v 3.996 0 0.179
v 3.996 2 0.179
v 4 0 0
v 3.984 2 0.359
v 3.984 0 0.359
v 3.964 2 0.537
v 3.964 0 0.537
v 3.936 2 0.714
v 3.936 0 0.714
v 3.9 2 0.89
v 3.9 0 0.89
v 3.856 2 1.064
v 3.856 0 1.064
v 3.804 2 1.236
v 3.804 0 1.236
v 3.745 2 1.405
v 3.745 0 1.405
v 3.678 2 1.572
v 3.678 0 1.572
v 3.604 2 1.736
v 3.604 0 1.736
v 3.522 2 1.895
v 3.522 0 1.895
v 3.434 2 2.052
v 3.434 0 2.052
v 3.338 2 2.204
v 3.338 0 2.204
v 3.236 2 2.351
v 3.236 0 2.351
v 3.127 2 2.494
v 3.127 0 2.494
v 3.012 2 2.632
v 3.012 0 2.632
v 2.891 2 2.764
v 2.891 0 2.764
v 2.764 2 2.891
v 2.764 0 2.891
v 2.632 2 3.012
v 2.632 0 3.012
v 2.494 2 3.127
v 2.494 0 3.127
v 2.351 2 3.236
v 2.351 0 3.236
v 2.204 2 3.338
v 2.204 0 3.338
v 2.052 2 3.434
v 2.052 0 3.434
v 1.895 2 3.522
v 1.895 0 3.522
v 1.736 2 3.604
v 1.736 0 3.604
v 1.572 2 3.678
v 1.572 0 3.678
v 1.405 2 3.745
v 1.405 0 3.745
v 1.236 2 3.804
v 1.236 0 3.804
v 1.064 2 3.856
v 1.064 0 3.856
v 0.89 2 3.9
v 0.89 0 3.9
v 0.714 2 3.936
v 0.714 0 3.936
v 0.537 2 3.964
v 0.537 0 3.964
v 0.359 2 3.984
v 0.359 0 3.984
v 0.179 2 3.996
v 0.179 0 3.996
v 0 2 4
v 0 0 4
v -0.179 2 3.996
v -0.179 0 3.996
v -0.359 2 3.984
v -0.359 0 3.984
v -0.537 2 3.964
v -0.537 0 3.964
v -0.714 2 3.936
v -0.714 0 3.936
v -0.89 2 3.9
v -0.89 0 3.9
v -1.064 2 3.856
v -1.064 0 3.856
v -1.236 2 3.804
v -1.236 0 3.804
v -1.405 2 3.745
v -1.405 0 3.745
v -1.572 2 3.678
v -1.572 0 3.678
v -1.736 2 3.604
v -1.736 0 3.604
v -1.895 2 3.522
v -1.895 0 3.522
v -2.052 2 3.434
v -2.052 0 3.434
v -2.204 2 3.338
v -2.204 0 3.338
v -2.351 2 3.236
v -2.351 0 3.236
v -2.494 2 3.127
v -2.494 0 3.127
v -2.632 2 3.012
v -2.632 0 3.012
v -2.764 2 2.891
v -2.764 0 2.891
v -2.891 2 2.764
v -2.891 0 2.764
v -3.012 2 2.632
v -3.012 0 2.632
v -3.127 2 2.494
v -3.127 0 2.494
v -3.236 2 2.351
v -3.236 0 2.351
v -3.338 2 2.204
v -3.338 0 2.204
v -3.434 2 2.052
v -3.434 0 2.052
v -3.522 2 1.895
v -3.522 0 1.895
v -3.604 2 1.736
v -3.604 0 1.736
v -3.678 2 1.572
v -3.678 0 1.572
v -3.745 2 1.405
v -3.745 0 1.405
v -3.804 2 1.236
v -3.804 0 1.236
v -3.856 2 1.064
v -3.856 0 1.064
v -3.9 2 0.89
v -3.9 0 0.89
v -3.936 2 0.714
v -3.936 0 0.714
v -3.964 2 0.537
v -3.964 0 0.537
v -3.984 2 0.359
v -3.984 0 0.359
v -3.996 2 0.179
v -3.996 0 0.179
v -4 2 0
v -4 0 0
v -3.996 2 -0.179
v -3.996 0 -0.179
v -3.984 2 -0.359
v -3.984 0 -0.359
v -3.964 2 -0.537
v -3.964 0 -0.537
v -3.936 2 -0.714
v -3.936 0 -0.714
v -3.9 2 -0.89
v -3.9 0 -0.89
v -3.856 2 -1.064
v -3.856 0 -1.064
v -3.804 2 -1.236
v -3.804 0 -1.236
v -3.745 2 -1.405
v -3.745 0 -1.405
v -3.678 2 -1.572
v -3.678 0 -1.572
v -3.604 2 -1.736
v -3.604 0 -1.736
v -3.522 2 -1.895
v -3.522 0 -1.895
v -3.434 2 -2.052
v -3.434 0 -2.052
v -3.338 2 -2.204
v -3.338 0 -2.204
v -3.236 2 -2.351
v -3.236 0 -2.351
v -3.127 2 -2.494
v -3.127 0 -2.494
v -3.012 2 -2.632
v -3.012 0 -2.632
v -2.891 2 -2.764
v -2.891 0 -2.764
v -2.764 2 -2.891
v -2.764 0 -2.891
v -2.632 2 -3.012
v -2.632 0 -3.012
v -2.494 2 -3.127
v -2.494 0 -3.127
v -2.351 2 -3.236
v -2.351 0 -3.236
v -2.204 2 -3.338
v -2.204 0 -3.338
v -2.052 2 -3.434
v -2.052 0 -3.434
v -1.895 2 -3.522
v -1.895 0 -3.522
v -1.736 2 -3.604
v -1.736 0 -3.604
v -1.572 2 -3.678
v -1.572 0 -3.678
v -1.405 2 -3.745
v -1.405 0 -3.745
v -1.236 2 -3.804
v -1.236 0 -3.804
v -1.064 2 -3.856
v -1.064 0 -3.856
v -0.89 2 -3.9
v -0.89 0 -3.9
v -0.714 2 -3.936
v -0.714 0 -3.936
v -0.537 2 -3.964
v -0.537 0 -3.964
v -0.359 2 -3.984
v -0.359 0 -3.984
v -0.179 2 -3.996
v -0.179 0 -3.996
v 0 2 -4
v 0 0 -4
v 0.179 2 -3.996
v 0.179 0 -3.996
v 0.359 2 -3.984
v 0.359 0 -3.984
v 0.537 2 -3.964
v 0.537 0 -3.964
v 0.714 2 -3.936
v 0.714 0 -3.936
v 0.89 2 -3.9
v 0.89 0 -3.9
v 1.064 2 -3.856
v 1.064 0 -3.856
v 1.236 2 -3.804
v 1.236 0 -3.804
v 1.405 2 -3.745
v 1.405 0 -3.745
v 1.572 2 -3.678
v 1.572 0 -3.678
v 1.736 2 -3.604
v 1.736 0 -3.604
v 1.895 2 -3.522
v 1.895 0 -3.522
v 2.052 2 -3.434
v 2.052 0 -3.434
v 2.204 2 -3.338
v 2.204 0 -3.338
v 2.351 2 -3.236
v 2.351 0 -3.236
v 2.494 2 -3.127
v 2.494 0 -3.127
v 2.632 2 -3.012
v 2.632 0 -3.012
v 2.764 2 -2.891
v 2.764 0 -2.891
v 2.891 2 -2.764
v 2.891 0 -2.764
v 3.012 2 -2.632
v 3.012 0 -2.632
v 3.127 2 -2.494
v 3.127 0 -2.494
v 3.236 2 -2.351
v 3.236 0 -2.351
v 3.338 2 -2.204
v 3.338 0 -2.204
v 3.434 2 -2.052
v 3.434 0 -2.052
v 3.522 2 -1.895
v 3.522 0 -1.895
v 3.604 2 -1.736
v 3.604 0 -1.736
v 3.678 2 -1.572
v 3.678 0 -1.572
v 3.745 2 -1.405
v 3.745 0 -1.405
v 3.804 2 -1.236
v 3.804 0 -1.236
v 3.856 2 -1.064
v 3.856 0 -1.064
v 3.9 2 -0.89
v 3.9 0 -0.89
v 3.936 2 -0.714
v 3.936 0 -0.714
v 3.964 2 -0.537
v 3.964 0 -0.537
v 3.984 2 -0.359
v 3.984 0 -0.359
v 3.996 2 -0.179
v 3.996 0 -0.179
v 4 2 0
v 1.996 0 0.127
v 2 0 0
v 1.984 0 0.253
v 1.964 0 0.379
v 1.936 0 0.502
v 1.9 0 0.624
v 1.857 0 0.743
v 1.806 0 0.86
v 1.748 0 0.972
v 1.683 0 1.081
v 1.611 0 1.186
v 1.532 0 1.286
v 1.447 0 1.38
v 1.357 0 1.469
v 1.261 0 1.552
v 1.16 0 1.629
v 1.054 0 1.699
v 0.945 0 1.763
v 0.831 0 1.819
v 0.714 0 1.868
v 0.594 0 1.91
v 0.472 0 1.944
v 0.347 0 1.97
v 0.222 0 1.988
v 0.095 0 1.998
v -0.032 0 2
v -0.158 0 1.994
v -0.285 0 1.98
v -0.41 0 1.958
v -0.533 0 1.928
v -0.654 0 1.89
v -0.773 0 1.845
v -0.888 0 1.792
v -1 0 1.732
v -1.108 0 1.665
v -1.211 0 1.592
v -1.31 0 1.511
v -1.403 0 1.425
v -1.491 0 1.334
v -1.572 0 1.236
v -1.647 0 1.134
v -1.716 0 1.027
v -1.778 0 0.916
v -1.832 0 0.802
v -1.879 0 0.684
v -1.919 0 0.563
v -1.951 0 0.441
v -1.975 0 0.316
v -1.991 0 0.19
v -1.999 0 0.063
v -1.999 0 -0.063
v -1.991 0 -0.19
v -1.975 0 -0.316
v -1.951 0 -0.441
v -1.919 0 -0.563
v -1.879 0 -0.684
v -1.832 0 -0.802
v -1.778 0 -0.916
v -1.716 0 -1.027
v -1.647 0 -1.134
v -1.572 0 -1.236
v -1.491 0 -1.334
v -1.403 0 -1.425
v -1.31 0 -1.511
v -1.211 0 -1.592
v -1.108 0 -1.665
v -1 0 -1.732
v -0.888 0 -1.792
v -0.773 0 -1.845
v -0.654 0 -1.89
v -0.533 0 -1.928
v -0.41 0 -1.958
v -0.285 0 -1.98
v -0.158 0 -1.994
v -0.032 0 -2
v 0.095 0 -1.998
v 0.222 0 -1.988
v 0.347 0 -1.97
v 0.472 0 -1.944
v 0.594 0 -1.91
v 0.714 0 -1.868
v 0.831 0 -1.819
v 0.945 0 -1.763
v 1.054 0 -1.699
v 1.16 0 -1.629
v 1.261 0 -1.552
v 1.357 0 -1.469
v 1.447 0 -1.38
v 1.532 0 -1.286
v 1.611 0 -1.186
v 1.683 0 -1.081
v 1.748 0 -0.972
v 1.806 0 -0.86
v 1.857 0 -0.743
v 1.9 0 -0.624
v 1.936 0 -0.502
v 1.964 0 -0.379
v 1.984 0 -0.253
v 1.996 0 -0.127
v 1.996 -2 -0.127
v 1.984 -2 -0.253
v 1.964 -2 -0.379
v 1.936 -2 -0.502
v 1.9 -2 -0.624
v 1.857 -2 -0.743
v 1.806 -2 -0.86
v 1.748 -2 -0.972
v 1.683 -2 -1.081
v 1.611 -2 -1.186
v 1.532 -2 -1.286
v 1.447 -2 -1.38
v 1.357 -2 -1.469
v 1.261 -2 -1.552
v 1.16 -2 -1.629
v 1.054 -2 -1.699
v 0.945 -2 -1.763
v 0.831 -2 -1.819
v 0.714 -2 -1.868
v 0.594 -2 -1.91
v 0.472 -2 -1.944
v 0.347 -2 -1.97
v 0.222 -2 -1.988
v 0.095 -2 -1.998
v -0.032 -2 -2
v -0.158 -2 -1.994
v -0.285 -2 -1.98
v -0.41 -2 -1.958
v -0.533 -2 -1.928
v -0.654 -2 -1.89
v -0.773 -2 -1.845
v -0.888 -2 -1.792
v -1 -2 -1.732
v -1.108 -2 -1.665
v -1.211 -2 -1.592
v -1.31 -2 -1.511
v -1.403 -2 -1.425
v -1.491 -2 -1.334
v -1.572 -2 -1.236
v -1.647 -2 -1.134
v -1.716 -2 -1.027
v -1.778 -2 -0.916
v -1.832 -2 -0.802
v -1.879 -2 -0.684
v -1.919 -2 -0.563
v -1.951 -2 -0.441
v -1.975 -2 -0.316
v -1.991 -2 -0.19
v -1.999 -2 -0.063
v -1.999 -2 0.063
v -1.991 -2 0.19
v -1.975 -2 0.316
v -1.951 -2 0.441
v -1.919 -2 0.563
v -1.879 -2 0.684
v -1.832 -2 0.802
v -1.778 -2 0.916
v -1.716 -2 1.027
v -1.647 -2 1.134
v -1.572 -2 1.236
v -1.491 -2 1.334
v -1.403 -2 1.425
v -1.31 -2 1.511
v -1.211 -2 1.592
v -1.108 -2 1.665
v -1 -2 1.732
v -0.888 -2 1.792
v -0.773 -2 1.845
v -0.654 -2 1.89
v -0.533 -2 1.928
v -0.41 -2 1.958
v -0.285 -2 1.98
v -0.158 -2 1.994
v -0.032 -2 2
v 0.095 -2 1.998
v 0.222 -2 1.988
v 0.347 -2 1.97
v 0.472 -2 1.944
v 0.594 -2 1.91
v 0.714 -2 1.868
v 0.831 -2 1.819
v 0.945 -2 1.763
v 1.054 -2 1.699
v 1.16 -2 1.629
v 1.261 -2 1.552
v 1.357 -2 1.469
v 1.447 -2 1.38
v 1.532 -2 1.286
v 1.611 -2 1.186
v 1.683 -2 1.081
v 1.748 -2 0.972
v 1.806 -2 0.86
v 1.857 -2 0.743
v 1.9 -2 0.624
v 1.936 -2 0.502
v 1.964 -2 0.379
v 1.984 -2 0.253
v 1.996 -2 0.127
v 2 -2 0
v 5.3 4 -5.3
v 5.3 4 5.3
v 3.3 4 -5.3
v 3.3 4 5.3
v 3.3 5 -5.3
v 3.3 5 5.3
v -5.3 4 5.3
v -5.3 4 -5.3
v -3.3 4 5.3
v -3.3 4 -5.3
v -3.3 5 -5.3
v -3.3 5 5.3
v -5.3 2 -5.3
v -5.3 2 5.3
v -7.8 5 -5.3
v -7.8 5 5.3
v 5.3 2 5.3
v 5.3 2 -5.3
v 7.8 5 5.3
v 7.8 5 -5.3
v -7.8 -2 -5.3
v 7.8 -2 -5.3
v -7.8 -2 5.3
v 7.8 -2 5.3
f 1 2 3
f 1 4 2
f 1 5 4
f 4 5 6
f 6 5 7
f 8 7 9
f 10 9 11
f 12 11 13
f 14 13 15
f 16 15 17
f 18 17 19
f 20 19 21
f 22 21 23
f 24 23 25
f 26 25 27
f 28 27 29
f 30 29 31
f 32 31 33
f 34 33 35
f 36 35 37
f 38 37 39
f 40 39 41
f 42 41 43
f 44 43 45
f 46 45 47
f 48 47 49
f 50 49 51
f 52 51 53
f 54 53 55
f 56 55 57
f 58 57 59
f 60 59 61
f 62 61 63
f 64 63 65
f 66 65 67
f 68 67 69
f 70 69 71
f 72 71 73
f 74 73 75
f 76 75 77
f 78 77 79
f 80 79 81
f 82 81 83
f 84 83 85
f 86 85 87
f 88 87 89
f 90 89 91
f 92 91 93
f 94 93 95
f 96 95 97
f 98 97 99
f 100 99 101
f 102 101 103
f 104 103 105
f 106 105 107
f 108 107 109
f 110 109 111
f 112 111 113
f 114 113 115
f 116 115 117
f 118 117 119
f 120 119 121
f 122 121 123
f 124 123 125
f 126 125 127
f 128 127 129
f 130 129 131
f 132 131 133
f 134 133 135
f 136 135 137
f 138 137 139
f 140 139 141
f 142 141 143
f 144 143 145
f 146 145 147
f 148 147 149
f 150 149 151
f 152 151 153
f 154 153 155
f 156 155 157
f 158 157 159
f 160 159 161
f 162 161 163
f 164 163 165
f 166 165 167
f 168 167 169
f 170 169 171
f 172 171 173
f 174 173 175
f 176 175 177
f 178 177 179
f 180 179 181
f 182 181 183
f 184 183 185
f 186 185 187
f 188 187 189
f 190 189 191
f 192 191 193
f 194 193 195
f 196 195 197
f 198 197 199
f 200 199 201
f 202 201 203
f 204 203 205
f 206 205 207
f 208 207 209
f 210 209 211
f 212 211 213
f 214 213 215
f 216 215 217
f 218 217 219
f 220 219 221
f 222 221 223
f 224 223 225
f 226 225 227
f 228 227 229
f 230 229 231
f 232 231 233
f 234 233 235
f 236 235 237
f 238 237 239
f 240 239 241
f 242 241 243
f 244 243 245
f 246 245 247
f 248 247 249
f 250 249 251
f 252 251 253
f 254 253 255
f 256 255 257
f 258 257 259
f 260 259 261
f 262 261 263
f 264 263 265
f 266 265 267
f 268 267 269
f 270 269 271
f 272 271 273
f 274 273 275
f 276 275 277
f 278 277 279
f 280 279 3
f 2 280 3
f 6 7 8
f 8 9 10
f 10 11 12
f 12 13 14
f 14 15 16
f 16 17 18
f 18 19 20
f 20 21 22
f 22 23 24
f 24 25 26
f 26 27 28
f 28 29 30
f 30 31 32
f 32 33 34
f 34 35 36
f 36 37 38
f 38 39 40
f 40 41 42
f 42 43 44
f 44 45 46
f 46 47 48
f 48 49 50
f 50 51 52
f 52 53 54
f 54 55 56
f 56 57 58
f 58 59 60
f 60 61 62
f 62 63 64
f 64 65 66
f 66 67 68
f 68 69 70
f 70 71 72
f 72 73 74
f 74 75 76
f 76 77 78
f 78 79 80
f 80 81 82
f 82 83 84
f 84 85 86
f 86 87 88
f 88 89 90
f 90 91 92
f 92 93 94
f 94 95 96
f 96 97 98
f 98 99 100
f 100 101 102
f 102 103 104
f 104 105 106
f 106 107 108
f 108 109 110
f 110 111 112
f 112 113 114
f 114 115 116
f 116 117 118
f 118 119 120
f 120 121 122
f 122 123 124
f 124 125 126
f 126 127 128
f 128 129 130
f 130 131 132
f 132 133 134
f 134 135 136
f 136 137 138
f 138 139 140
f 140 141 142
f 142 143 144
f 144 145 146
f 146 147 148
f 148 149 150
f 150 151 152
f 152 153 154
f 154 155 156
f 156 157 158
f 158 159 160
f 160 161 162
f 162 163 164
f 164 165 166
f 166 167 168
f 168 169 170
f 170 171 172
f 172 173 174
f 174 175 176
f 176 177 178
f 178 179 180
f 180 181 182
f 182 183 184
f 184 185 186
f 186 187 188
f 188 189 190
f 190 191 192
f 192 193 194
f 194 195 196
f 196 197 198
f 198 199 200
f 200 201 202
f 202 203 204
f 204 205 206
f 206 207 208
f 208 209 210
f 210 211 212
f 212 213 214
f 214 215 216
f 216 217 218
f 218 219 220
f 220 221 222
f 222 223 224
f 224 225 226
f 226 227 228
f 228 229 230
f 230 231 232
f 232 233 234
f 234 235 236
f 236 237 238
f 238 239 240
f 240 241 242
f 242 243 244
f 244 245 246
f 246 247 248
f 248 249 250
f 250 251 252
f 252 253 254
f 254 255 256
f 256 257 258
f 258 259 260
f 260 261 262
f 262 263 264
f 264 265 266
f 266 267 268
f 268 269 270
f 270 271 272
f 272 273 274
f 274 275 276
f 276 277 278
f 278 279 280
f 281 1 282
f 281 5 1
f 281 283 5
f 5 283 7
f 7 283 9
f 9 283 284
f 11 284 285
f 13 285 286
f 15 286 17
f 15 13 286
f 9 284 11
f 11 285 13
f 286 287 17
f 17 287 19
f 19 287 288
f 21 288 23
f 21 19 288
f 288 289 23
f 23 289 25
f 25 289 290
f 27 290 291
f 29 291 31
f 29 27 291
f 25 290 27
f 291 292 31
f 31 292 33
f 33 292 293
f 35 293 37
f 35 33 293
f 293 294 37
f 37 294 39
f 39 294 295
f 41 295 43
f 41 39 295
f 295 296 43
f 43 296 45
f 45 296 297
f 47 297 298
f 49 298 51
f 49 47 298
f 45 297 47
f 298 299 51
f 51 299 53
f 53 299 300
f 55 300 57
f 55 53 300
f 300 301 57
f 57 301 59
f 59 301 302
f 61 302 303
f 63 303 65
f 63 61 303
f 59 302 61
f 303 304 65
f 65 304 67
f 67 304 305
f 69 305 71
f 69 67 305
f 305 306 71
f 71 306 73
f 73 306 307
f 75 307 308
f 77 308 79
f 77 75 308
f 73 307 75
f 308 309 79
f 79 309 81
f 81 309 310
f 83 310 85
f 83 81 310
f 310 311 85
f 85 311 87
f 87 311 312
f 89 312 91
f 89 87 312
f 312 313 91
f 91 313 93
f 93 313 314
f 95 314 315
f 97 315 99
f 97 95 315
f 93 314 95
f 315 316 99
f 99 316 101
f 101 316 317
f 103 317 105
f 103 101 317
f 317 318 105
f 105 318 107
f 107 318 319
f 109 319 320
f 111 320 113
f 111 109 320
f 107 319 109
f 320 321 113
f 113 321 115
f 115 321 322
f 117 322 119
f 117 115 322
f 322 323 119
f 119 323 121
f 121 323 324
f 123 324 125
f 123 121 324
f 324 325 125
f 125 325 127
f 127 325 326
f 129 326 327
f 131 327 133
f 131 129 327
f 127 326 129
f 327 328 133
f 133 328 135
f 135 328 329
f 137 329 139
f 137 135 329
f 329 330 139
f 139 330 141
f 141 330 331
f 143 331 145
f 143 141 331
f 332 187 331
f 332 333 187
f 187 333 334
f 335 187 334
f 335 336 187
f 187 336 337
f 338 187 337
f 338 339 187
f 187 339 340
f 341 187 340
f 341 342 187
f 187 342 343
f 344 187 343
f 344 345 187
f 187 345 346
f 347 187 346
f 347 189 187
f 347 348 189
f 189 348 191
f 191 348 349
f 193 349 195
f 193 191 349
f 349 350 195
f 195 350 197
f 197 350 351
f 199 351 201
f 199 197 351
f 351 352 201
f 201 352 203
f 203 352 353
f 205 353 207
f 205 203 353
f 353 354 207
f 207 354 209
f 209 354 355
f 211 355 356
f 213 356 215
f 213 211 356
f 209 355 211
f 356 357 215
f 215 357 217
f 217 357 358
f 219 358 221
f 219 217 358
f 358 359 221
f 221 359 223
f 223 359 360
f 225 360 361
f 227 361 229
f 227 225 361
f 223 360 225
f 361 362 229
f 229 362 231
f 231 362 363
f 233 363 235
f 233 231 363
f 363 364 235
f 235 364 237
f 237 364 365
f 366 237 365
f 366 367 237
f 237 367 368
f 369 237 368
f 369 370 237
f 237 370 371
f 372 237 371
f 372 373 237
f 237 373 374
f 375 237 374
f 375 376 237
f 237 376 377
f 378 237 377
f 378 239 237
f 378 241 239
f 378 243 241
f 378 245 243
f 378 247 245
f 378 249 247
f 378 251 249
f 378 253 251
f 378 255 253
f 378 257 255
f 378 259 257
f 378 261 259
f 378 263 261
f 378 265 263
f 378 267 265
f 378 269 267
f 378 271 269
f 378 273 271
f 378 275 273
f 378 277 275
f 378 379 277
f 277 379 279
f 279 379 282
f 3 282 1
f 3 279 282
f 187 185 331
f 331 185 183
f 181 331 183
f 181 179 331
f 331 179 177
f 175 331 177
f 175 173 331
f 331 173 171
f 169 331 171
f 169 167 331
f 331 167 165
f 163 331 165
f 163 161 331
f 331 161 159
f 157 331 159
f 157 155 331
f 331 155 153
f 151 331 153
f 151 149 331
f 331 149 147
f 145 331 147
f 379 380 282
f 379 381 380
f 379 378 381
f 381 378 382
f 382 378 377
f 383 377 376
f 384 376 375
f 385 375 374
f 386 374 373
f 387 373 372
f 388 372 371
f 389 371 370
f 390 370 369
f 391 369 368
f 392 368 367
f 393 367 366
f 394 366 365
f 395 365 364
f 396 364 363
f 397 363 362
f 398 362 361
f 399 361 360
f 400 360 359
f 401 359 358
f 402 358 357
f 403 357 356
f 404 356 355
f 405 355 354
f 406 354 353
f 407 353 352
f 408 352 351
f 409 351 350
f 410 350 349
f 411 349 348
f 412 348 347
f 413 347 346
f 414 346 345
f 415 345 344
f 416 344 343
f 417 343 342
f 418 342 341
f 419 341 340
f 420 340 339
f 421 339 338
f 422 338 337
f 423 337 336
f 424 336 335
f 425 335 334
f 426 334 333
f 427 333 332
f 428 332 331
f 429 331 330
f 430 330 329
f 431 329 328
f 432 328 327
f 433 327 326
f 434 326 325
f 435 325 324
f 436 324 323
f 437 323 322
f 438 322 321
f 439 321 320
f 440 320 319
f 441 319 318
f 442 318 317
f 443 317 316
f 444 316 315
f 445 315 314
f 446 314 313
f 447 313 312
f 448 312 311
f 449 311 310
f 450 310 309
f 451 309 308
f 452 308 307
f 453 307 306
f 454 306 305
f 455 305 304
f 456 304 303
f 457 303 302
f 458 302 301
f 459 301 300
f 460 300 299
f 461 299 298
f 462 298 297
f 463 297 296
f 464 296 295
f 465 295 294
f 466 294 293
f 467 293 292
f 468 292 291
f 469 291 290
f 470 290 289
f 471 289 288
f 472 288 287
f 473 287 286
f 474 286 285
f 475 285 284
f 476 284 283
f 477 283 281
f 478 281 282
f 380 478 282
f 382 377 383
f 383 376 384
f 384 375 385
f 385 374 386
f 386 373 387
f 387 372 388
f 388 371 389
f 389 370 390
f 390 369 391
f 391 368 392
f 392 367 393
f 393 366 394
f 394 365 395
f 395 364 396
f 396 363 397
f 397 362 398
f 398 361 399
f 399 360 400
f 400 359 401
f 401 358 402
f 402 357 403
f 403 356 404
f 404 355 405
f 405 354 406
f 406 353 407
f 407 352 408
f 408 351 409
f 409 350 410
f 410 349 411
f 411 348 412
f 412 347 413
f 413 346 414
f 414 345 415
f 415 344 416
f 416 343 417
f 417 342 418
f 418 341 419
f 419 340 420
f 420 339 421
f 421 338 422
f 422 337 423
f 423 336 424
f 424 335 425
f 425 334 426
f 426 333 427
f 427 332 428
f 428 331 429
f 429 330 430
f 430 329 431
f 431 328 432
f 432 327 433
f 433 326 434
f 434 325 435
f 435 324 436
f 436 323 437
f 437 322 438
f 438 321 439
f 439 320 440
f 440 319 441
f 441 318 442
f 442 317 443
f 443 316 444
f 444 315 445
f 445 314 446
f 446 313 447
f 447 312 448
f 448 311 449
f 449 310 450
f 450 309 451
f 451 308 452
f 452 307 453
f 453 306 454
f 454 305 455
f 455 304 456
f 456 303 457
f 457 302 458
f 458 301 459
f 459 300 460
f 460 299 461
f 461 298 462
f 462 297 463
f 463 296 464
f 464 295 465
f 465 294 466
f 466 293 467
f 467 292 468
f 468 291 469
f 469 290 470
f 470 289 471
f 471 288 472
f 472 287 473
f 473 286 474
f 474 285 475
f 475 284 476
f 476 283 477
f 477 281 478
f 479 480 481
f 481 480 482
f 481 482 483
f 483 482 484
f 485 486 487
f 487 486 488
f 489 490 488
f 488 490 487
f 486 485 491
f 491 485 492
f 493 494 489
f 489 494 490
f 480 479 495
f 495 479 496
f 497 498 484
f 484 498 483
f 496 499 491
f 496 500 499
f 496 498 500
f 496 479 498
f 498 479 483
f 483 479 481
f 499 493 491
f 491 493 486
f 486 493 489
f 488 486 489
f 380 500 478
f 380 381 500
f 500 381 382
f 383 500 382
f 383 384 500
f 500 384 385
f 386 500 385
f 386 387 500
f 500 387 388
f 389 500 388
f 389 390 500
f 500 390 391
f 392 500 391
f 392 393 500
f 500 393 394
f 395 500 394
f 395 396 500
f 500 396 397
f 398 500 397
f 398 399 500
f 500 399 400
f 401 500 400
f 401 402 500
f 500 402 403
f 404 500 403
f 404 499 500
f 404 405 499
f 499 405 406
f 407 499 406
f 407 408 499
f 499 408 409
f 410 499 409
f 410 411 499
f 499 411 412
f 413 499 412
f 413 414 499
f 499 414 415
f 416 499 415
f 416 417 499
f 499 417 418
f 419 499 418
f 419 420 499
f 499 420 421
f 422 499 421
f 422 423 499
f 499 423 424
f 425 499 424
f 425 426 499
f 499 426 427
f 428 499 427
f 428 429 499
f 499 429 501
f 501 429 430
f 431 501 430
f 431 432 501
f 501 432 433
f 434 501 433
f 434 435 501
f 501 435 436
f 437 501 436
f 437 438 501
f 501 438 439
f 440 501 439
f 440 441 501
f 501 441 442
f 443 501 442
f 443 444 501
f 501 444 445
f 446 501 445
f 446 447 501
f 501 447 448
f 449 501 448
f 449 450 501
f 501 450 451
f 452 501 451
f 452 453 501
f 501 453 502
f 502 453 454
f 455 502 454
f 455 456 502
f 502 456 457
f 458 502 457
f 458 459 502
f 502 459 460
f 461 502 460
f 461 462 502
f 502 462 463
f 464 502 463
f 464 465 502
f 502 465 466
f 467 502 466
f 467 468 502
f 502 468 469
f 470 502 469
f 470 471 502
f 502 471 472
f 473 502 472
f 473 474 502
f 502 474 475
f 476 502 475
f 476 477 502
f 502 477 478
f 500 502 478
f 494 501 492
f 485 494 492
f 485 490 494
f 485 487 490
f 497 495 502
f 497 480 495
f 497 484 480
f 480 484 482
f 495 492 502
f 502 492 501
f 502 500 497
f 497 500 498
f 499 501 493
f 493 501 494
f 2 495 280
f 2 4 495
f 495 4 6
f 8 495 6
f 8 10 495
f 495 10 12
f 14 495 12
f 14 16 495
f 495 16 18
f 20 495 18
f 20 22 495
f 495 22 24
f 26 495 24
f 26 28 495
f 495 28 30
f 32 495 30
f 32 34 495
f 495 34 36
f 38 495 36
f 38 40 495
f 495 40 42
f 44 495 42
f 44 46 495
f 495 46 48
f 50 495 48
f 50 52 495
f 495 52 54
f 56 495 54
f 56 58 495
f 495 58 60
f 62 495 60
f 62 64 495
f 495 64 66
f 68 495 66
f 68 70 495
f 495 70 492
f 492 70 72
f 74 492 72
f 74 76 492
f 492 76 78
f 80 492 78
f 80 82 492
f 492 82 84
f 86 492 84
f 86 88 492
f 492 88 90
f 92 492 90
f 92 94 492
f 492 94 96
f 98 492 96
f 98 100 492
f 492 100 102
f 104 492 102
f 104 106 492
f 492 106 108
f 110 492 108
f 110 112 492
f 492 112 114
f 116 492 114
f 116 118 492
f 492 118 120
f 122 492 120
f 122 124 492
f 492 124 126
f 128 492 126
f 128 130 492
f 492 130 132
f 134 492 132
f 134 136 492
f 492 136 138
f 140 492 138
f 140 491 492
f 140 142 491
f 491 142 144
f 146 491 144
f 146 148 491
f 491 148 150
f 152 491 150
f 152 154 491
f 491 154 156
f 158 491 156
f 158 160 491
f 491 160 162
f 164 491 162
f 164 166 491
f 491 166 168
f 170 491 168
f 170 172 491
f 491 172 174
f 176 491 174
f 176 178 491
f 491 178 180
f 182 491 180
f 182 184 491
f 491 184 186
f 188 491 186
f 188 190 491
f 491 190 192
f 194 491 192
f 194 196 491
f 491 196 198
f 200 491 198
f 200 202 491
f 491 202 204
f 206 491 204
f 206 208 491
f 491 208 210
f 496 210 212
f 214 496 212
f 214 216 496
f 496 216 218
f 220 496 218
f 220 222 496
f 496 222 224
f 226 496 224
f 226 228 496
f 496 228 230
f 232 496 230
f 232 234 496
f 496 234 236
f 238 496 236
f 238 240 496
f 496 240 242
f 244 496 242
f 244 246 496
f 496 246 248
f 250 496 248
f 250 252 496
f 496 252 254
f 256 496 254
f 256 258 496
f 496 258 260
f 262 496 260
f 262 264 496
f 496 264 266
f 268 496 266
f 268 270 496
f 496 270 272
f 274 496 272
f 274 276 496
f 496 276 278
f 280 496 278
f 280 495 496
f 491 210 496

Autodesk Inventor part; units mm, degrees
ref_plane "YZ Plane" through (0, 0, 0) normal (1, 0, 0) x (0, 1, 0)
ref_plane "XZ Plane" through (0, 0, 0) normal (0, 1, 0) x (-1, 0, 0)
ref_plane "XY Plane" through (0, 0, 0) normal (0, 0, 1) x (1, 0, 0)
sketch "Sketch1" plane through (0, 0, 0) normal (0, 1, 0) x (-1, 0, 0)
  line L0 (5.3, -5.3) -> (-5.3, -5.3)
  line L1 (-5.3, -5.3) -> (-5.3, 5.3)
  line L2 (-5.3, 5.3) -> (5.3, 5.3)
  line L3 (5.3, 5.3) -> (5.3, -5.3)
  line L4 (7.8, -5.3) -> (7.8, 5.3)
  line L5 (-7.8, 5.3) -> (-7.8, -5.3)
  line L6 (5.3, -5.3) -> (7.8, -5.3)
  line L7 (-5.3, -5.3) -> (-7.8, -5.3)
  line L8 (-5.3, 5.3) -> (-7.8, 5.3)
  line L9 (5.3, 5.3) -> (7.8, 5.3)
  point P0 (0, 0)
  point P1 (-5.3, 0)
  point P2 (0, -5.3)
  dimension "d0" = 10.6
  dimension "d1" = 10.6
extrude "Extrusion1" add sketch "Sketch1" along normal blind 2
extrude "Extrusion2" add sketch "Sketch1" along normal blind 5 contours L3 L9 L4 L6 | L7 L5 L8 L1
sketch "Sketch2" plane through (-5.3, 2, -5.3) normal (1, 0, 0) x (0, 0, -1)
  line L0 (0, 0) -> (-10.6, 0) projected
  line L1 (0, 0) -> (0, 3) projected
  line L2 (-10.6, 3) -> (0, 3) projected
  line L3 (-10.6, 0) -> (-10.6, 3) projected
  line L4 (-10.6, 3) -> (0, 3)
  line L5 (0, 3) -> (0, 2)
  line L6 (0, 2) -> (-10.6, 2)
  line L7 (-10.6, 2) -> (-10.6, 3)
  point P0 (-5.3, -2)
  dimension "d7" = 1
extrude "Extrusion3" add sketch "Sketch2" along normal blind 2 contours L6 L3 L2 L1
mirror "Mirror1" about plane through (0, 0, 0) normal (1, 0, 0) of "Extrusion3"
move faces "Move1" translate (0, -2, 0) faces at (-2.6, 0, 1.7667)
sketch "Sketch3" plane through (-7.8, -2, -5.3) normal (0, -1, 0) x (1, 0, 0)
  line L0 (15.6, 0) -> (0, 0) projected
  line L1 (15.6, 10.6) -> (15.6, 0) projected
  line L2 (0, 10.6) -> (15.6, 10.6) projected
  line L3 (0, 0) -> (0, 10.6) projected
  line L4 (7.8, 10.6) -> (7.8, 0)
  circle A0 centre (7.8, 5.3) radius 2
  dimension "d13" = 4
extrude "Extrusion4" cut sketch "Sketch3" against normal through all contours A0 L4 | L4 A0
sketch "Sketch4" plane through (0, 2, 0) normal (0, 1, 0) x (1, 0, 0)
  circle A0 centre (0, 0) radius 2 projected
  line L0 (-5.3, 5.3) -> (-5.3, -5.3) projected
  line L1 (-5.3, -5.3) -> (5.3, -5.3) projected
  line L2 (5.3, -5.3) -> (5.3, 5.3) projected
  line L3 (5.3, 5.3) -> (-5.3, 5.3) projected
  circle A1 centre (0, 0) radius 4
  dimension "d16" = 2
extrude "Extrusion5" cut sketch "Sketch4" against normal blind 2 contours A1
properties part number "MicroUSBClip"
